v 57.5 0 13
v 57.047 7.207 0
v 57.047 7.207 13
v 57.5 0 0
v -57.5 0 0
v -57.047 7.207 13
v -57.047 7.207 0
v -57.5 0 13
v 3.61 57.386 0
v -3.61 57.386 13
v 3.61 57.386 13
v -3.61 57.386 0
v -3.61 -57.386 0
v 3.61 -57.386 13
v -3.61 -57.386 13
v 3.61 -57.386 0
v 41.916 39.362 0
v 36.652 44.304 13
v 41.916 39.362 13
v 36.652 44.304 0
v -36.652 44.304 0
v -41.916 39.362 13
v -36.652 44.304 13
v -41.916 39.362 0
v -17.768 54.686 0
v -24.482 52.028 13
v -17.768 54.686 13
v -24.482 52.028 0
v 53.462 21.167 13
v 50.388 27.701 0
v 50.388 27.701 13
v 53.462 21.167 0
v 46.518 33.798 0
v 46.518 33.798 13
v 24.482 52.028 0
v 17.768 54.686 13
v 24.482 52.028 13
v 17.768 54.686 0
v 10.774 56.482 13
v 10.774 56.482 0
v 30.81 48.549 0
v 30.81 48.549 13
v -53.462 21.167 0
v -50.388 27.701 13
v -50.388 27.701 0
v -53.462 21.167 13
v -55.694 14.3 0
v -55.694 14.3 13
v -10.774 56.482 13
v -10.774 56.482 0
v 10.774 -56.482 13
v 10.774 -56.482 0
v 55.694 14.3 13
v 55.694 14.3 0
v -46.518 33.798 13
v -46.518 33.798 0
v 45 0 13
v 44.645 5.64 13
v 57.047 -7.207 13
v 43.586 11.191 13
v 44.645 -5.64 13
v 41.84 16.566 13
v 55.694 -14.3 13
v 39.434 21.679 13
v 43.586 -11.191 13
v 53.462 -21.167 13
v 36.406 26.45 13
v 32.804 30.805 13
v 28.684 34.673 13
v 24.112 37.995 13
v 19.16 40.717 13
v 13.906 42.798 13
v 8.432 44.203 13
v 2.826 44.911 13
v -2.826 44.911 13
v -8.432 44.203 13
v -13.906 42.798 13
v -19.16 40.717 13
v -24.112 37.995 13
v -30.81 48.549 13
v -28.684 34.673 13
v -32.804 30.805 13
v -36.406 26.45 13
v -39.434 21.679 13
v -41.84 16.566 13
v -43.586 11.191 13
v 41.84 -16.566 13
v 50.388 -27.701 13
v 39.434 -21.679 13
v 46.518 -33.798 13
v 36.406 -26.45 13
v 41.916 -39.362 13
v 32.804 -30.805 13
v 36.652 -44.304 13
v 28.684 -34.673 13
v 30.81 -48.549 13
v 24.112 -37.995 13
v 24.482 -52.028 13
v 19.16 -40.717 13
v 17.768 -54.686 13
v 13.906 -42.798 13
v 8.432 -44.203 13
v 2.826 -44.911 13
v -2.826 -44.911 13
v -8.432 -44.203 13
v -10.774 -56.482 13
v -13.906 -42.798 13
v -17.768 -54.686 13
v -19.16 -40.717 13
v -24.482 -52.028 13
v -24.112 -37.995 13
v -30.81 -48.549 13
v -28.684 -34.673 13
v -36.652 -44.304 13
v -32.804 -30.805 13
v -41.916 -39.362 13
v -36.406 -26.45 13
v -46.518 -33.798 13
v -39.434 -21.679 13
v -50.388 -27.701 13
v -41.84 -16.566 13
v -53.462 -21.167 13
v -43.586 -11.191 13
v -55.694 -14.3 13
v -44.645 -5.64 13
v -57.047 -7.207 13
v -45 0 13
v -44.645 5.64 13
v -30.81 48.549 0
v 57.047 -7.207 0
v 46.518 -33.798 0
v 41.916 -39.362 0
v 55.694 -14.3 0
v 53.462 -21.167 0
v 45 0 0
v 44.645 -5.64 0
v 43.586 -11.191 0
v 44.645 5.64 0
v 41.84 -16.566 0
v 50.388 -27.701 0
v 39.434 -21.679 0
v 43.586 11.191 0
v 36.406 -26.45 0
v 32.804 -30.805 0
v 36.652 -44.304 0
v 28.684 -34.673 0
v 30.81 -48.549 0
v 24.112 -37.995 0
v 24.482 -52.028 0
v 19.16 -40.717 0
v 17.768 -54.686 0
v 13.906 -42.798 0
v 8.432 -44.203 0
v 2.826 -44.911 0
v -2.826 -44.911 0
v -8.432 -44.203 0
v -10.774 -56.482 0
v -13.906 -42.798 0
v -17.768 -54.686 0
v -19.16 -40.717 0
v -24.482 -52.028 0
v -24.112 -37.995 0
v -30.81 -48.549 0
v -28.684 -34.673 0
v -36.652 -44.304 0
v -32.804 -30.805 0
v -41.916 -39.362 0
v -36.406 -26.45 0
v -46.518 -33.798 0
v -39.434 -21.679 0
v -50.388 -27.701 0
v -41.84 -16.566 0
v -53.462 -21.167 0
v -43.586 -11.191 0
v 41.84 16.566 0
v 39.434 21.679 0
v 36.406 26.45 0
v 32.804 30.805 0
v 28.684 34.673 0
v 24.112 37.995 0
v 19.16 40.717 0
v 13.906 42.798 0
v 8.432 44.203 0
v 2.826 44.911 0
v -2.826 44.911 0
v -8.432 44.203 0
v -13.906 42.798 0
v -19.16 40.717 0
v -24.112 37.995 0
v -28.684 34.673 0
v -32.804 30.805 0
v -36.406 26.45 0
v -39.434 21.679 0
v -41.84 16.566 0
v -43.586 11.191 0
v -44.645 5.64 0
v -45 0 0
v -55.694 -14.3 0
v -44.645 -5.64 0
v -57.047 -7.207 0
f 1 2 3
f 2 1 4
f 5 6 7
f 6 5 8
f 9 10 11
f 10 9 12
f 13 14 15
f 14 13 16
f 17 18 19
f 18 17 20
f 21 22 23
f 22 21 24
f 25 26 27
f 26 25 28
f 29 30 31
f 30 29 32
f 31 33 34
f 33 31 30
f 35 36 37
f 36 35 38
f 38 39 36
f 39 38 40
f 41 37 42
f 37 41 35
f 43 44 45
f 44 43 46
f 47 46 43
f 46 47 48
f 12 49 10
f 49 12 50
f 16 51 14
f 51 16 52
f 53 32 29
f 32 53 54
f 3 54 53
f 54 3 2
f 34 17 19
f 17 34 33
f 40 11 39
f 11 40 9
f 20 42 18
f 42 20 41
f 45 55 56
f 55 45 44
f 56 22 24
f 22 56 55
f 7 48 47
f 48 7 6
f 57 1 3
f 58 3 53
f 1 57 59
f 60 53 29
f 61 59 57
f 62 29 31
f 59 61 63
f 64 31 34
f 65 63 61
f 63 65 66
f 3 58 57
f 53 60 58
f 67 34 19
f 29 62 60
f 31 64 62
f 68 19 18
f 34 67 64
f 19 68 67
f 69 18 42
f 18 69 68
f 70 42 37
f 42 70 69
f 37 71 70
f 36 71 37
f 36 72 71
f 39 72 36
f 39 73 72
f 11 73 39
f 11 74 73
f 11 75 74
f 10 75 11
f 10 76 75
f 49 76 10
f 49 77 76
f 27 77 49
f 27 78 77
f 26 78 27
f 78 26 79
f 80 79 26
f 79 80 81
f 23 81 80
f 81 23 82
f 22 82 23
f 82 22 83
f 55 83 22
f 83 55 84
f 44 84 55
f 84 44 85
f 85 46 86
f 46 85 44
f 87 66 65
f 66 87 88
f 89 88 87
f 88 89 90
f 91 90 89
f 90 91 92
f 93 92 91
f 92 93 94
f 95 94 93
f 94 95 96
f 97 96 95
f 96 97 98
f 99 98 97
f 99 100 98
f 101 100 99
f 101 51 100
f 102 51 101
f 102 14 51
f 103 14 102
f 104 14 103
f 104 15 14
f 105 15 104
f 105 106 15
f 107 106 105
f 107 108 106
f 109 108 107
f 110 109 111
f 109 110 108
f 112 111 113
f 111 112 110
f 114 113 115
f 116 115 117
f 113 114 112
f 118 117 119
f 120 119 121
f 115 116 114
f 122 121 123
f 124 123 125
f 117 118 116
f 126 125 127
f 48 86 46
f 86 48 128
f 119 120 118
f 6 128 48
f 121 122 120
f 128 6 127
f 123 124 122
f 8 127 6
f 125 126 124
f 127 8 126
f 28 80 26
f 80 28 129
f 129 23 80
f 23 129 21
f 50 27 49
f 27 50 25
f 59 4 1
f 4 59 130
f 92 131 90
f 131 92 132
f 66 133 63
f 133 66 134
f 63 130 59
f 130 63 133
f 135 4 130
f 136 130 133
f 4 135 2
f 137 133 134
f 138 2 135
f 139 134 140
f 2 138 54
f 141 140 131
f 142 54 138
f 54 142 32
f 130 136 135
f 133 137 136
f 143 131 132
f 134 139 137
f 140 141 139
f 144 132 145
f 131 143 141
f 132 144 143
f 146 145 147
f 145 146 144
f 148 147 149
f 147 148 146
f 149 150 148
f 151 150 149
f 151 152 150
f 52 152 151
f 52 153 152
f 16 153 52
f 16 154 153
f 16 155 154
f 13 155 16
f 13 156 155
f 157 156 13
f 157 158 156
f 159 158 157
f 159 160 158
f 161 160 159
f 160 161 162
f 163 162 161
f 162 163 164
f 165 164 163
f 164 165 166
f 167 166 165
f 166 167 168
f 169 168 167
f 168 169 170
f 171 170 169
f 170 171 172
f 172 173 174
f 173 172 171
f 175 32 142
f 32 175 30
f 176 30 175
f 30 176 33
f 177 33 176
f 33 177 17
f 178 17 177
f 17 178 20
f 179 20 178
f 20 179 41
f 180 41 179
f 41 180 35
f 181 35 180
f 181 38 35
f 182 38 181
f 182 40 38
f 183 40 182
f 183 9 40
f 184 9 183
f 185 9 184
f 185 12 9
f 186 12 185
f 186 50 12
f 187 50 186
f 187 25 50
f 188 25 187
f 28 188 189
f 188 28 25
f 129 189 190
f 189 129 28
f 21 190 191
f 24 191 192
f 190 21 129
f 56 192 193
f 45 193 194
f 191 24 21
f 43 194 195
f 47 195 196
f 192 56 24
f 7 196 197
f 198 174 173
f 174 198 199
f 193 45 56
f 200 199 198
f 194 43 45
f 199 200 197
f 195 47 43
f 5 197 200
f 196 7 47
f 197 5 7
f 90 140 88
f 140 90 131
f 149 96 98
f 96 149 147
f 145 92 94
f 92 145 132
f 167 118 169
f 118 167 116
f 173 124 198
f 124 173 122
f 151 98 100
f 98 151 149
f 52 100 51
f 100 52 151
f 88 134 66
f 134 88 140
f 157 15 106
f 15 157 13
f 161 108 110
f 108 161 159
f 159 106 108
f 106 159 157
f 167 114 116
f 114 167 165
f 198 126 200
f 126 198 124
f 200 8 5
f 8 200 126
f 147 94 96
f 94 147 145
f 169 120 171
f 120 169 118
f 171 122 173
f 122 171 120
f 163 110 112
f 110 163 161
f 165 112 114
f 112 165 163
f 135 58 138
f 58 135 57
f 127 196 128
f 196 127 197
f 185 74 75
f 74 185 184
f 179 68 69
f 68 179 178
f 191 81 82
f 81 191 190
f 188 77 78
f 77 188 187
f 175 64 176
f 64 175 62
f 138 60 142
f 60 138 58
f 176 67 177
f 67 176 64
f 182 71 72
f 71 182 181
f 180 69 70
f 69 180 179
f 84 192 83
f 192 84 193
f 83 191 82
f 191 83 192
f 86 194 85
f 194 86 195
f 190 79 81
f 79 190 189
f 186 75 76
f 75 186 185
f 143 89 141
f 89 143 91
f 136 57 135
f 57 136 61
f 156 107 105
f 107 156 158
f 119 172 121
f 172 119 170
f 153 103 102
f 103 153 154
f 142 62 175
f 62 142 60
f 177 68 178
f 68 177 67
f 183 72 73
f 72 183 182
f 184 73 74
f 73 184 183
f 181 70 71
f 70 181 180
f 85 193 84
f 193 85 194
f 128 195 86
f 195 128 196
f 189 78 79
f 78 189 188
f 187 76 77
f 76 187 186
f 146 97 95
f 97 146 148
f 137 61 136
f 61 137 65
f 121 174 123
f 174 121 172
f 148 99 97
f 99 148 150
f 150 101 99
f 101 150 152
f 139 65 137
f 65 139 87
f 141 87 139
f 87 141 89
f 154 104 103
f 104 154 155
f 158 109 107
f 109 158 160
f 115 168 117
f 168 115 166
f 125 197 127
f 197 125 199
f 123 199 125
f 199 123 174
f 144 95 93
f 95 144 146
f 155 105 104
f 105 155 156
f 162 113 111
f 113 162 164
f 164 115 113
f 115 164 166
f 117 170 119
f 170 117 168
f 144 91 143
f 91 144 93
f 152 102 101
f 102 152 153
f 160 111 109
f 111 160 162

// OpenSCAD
$fn = 50;


difference() {
	union() {
		cylinder(h = 13, r = 57.5000000000);
	}
	union() {
		cylinder(h = 13, r = 45.0000000000);
	}
}
